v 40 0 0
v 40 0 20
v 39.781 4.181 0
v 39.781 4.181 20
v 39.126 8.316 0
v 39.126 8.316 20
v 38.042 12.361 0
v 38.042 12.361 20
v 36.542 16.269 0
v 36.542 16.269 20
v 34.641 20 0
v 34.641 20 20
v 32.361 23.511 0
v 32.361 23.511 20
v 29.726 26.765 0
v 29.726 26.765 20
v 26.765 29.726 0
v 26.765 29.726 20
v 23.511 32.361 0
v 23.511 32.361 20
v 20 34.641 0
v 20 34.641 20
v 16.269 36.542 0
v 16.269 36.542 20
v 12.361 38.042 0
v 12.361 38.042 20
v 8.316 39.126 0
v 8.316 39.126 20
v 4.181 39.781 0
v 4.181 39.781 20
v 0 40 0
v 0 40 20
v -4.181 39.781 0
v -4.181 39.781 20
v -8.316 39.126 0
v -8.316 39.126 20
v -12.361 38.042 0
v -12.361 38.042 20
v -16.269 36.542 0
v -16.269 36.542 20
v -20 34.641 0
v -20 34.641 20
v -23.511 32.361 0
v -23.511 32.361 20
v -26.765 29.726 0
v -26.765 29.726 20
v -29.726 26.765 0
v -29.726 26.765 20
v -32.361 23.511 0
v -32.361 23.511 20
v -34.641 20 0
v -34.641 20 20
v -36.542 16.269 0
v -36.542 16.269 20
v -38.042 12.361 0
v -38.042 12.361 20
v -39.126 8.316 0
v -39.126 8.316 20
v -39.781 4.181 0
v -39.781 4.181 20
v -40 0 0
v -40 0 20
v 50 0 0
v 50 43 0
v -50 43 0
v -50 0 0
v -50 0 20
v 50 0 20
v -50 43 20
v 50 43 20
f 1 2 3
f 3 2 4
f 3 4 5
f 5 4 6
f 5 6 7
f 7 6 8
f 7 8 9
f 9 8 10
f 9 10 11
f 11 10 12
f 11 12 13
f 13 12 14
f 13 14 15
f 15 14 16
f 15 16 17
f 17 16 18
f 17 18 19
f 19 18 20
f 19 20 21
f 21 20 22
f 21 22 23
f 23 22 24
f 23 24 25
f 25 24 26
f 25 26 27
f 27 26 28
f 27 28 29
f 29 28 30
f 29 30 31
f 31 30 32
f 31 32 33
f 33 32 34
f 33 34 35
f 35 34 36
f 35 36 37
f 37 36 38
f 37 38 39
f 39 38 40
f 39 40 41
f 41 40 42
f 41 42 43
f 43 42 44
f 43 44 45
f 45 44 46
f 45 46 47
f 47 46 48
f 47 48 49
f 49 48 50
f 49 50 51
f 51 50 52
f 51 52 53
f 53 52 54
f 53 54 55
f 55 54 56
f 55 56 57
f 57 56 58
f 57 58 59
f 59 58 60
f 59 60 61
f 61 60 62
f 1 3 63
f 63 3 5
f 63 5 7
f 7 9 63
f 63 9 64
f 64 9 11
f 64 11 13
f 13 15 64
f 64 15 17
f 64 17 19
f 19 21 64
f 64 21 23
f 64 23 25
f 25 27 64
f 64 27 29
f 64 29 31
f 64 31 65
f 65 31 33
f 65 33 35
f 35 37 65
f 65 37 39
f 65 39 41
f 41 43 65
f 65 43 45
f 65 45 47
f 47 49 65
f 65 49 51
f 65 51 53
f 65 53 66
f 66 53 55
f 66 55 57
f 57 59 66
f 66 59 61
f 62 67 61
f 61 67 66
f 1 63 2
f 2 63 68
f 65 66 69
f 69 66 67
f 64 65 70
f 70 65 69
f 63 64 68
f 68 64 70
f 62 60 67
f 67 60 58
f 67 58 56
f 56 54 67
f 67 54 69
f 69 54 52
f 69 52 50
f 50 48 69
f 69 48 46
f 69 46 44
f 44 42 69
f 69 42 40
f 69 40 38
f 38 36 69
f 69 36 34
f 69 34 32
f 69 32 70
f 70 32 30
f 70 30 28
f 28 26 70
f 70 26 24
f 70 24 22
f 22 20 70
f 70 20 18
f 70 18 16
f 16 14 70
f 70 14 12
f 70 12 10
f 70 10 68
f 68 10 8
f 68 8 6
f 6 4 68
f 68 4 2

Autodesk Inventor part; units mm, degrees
ref_plane "YZ Plane" through (0, 0, 0) normal (1, 0, 0) x (0, 1, 0)
ref_plane "XZ Plane" through (0, 0, 0) normal (0, 1, 0) x (-1, 0, 0)
ref_plane "XY Plane" through (0, 0, 0) normal (0, 0, 1) x (1, 0, 0)
sketch "Sketch13" plane through (0, 0, 0) normal (0, 0, 1) x (1, 0, 0)
  line L0 (-50, 43) -> (50, 43)
  line L1 (50, 43) -> (50, 0)
  line L2 (50, 0) -> (-50, 0)
  line L3 (-50, 0) -> (-50, 43)
  line L4 (-50, 43) -> (50, 0) construction
  line L5 (50, 43) -> (-50, 0) construction
  point P0 (0, 0)
  point P1 (0, 21.5)
  dimension "d42" = 100
  dimension "d43" = 43
extrude "Extrusion11" add sketch "Sketch13" along normal blind 20
sketch "Sketch14" plane through (0, 0, 20) normal (0, 0, 1) x (1, 0, 0)
  circle A0 centre (0, 0) radius 40
  dimension "d46" = 80
extrude "Extrusion12" cut sketch "Sketch14" against normal blind 50
sketch "Sketch15" plane through (0, 0, 20) normal (0, 0, 1) x (1, 0, 0)
  point P0 (0, 0)
properties part number "pipe_holder_v02"
